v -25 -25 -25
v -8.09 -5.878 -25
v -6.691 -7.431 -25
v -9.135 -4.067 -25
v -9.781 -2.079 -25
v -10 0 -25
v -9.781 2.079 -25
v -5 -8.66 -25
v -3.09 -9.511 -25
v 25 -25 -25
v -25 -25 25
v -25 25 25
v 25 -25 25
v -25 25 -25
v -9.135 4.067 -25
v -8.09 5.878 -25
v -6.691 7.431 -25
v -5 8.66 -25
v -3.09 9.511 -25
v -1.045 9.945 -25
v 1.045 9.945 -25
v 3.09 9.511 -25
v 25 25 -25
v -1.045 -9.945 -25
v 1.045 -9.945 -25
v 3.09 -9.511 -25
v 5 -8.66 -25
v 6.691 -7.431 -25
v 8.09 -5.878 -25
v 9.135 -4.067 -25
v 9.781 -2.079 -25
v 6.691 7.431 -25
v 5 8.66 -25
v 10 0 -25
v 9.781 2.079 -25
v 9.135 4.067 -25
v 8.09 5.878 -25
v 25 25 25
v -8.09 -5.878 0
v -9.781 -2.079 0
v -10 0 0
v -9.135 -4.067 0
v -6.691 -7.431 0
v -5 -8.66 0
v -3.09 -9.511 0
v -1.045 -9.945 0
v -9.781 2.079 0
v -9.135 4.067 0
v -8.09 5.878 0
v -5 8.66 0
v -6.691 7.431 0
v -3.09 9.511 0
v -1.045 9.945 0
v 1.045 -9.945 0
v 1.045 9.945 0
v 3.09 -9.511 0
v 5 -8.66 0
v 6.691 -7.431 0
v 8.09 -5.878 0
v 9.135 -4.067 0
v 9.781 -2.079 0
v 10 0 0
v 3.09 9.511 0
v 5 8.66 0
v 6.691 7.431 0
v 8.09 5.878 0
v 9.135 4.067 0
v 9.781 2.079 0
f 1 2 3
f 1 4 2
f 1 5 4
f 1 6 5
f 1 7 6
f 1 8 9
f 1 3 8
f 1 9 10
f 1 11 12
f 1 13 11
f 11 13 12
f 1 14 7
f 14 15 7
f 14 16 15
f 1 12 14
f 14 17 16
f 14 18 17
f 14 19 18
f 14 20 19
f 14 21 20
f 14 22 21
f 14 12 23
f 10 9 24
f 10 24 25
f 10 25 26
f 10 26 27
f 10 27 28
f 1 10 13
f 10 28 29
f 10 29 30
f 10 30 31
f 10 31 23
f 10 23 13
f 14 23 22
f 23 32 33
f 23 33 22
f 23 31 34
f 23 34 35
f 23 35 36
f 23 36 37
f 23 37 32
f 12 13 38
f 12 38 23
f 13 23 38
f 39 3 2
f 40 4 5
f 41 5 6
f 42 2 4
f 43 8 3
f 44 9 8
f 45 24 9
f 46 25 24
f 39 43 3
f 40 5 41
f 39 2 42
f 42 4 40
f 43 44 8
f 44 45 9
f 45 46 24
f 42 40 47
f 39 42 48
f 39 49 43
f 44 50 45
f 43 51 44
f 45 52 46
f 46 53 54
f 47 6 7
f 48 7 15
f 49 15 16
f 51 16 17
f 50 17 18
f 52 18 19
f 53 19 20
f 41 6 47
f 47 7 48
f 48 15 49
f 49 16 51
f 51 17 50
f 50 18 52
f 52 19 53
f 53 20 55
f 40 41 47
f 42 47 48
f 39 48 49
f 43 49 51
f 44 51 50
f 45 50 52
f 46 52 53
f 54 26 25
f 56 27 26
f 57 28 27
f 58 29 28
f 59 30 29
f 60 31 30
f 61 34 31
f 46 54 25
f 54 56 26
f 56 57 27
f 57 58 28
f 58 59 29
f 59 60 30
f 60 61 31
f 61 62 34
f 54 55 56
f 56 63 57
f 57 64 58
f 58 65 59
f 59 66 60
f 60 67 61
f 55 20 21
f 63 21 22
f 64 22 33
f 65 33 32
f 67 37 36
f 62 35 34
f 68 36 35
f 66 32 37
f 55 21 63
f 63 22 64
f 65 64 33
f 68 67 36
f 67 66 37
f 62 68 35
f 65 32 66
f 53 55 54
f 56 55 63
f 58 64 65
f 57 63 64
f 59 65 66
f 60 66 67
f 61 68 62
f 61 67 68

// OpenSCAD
module hollow_cube(size, hole_diameter) {
    difference() {
        cube(size, center = true);
        translate([0, 0, -size/2]) cylinder(h = size, d = hole_diameter, center = true);
    }
}

hollow_cube(size = 50, hole_diameter = 20);
